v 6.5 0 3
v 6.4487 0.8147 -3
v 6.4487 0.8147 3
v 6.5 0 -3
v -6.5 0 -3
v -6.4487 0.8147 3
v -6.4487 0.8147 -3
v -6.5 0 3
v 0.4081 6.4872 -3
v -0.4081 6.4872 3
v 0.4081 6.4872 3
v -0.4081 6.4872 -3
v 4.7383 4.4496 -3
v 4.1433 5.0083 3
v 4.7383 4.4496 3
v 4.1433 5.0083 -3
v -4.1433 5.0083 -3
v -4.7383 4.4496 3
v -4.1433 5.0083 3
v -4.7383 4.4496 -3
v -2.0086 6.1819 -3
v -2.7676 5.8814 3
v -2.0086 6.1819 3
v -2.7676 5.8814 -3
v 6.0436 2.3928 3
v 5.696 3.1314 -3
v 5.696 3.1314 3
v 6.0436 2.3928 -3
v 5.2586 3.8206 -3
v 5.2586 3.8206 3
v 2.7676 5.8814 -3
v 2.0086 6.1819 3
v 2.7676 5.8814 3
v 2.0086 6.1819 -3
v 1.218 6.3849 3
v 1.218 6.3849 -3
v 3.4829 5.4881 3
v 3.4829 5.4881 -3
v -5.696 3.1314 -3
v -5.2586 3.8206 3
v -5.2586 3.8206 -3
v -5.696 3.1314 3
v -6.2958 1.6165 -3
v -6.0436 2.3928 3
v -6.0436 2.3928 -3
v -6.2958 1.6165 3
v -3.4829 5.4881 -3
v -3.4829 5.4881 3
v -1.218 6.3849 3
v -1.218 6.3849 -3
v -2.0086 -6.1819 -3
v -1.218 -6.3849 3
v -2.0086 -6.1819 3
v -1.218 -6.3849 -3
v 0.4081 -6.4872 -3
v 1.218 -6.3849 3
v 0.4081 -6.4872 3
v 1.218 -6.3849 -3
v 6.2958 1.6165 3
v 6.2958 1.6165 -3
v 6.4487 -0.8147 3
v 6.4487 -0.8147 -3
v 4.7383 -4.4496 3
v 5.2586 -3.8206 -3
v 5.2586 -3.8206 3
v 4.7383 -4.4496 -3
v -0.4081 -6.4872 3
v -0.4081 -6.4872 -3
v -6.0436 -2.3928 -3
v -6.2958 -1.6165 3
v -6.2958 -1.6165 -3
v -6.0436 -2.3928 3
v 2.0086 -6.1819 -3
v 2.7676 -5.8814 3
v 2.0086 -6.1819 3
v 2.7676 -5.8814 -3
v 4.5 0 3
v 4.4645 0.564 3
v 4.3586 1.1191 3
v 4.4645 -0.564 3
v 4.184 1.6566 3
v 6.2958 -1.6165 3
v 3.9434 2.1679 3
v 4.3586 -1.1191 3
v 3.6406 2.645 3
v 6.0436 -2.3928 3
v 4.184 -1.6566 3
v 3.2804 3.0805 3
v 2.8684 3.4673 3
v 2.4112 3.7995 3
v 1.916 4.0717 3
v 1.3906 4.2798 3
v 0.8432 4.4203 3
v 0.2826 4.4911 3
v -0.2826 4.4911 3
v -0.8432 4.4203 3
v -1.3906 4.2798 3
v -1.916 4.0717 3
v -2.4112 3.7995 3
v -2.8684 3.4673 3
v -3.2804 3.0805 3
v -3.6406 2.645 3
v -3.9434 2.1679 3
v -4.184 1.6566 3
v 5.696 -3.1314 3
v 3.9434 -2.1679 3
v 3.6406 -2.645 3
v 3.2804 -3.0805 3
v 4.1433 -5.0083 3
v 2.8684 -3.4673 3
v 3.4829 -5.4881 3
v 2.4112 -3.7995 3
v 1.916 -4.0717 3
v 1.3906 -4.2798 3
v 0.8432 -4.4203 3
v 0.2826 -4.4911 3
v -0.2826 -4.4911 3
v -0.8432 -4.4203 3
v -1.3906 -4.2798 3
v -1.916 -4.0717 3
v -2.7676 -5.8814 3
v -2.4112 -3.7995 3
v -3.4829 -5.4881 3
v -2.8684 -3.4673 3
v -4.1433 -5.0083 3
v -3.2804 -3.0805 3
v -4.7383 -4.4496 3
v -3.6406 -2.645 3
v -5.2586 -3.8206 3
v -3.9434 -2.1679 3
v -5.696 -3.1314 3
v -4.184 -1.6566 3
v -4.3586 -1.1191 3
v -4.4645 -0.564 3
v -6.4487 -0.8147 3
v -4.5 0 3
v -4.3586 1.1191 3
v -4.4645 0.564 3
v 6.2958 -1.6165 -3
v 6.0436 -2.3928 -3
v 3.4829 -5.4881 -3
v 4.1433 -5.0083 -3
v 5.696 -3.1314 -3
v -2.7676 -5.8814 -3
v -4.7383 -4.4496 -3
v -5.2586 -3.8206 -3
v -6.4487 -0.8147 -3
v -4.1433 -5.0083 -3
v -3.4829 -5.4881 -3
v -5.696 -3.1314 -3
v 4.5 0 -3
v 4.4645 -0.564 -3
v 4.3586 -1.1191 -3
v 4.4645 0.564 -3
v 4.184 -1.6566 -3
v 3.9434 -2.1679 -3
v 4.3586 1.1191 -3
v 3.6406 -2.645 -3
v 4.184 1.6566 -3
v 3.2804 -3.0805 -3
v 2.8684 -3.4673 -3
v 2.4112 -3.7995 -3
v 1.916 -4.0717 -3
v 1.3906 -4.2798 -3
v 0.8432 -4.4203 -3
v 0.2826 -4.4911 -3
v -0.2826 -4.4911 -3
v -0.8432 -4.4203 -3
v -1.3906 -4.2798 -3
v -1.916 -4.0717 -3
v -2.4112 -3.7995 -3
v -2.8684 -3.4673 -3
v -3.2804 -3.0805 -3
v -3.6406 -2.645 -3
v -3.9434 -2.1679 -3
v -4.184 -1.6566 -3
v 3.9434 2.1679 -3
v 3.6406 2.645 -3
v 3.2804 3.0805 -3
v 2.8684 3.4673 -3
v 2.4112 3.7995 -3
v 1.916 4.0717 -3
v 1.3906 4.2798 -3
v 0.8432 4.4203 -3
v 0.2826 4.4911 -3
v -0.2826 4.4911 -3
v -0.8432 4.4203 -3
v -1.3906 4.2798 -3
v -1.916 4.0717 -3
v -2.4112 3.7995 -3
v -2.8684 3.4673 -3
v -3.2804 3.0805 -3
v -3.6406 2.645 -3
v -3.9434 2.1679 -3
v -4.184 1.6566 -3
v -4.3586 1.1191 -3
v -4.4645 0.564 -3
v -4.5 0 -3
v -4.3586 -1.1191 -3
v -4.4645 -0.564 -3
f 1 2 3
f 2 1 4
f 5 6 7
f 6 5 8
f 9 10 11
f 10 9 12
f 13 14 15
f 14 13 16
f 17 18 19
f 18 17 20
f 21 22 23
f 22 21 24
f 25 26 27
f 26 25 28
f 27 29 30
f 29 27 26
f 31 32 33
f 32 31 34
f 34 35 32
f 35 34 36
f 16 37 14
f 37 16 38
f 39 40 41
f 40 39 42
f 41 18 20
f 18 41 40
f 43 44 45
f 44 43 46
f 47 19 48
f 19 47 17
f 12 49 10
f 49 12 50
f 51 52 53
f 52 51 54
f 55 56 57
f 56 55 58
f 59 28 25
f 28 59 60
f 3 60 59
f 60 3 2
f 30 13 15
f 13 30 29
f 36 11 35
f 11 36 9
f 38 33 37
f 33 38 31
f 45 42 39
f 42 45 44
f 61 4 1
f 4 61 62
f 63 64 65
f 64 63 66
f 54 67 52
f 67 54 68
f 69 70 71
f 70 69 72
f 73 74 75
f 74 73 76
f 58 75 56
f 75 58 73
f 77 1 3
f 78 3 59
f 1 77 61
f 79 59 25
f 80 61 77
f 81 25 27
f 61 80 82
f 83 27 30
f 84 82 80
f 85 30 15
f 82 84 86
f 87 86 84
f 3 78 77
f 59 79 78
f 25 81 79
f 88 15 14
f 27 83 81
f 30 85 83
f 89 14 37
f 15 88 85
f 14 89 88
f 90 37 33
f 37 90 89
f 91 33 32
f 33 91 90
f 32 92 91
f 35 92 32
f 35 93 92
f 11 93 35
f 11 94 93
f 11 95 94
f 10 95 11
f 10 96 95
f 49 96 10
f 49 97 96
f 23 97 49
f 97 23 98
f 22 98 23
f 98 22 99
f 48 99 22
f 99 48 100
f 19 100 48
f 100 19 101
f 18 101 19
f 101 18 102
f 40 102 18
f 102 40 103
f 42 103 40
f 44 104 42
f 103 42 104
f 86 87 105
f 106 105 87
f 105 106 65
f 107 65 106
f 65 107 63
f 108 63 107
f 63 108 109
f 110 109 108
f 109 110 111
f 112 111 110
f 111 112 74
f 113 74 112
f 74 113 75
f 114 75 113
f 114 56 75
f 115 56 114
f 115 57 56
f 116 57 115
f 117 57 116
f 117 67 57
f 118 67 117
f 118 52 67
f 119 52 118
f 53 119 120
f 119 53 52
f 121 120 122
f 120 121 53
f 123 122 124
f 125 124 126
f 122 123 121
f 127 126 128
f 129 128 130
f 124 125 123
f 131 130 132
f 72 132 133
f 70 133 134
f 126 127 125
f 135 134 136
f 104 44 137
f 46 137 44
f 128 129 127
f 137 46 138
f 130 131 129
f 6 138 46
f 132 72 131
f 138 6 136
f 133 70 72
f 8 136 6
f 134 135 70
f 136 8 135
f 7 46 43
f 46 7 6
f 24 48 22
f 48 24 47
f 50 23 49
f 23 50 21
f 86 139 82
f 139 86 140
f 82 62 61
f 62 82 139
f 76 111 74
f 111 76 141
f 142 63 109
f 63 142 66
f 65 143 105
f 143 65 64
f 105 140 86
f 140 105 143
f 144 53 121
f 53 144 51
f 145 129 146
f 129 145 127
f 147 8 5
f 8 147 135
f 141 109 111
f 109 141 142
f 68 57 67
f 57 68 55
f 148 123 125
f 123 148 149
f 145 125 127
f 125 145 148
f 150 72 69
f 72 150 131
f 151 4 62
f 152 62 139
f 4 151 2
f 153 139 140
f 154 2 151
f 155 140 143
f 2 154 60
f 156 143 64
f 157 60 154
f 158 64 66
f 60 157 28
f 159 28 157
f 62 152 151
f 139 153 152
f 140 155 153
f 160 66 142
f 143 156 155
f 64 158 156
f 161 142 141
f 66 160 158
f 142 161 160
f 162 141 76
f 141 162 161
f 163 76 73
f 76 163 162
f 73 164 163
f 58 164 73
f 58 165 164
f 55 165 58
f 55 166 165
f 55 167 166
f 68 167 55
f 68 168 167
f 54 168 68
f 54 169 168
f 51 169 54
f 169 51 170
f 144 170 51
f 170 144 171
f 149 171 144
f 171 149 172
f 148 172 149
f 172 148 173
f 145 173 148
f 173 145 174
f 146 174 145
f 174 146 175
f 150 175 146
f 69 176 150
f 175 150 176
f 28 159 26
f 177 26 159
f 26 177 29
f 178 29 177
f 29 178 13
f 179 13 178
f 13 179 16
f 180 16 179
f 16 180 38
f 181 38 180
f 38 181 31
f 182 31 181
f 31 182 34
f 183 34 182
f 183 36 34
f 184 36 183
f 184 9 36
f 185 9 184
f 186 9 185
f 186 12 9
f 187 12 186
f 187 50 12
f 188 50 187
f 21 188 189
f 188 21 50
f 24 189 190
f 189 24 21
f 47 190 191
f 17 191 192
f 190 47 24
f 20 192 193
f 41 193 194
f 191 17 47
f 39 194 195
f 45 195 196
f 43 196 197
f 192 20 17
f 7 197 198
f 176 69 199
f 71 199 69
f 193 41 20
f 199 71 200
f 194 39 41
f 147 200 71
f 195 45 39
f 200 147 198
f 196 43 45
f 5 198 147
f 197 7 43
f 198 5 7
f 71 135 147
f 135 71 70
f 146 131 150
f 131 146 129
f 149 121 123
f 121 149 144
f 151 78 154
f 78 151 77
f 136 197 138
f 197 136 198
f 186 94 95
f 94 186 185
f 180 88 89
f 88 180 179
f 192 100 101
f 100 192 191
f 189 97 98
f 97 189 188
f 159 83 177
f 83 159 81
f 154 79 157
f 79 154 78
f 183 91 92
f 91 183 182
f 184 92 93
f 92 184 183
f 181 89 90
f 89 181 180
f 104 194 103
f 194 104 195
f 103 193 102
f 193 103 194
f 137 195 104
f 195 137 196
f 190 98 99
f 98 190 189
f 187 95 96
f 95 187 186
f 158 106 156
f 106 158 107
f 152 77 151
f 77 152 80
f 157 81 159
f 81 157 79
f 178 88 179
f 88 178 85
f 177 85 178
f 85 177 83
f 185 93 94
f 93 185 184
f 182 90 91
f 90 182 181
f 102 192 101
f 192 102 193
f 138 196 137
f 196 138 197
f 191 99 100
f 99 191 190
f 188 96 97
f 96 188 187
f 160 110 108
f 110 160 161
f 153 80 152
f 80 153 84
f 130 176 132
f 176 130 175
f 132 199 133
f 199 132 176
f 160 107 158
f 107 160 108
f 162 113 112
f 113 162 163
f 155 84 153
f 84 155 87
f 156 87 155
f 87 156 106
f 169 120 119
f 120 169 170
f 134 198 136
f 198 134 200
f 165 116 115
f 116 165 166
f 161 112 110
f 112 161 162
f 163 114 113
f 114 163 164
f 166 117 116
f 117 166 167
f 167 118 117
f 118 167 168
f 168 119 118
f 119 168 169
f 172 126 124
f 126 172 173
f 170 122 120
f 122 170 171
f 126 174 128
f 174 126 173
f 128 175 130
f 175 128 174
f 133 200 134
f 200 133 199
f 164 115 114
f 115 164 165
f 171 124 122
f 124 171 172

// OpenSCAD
$fn = 50;


difference() {
	union() {
		translate(v = [0, 0, -3.0000000000]) {
			cylinder(h = 6, r = 6.5000000000);
		}
	}
	union() {
		translate(v = [0, 0, -100.0000000000]) {
			cylinder(h = 200, r = 4.5000000000);
		}
	}
}
